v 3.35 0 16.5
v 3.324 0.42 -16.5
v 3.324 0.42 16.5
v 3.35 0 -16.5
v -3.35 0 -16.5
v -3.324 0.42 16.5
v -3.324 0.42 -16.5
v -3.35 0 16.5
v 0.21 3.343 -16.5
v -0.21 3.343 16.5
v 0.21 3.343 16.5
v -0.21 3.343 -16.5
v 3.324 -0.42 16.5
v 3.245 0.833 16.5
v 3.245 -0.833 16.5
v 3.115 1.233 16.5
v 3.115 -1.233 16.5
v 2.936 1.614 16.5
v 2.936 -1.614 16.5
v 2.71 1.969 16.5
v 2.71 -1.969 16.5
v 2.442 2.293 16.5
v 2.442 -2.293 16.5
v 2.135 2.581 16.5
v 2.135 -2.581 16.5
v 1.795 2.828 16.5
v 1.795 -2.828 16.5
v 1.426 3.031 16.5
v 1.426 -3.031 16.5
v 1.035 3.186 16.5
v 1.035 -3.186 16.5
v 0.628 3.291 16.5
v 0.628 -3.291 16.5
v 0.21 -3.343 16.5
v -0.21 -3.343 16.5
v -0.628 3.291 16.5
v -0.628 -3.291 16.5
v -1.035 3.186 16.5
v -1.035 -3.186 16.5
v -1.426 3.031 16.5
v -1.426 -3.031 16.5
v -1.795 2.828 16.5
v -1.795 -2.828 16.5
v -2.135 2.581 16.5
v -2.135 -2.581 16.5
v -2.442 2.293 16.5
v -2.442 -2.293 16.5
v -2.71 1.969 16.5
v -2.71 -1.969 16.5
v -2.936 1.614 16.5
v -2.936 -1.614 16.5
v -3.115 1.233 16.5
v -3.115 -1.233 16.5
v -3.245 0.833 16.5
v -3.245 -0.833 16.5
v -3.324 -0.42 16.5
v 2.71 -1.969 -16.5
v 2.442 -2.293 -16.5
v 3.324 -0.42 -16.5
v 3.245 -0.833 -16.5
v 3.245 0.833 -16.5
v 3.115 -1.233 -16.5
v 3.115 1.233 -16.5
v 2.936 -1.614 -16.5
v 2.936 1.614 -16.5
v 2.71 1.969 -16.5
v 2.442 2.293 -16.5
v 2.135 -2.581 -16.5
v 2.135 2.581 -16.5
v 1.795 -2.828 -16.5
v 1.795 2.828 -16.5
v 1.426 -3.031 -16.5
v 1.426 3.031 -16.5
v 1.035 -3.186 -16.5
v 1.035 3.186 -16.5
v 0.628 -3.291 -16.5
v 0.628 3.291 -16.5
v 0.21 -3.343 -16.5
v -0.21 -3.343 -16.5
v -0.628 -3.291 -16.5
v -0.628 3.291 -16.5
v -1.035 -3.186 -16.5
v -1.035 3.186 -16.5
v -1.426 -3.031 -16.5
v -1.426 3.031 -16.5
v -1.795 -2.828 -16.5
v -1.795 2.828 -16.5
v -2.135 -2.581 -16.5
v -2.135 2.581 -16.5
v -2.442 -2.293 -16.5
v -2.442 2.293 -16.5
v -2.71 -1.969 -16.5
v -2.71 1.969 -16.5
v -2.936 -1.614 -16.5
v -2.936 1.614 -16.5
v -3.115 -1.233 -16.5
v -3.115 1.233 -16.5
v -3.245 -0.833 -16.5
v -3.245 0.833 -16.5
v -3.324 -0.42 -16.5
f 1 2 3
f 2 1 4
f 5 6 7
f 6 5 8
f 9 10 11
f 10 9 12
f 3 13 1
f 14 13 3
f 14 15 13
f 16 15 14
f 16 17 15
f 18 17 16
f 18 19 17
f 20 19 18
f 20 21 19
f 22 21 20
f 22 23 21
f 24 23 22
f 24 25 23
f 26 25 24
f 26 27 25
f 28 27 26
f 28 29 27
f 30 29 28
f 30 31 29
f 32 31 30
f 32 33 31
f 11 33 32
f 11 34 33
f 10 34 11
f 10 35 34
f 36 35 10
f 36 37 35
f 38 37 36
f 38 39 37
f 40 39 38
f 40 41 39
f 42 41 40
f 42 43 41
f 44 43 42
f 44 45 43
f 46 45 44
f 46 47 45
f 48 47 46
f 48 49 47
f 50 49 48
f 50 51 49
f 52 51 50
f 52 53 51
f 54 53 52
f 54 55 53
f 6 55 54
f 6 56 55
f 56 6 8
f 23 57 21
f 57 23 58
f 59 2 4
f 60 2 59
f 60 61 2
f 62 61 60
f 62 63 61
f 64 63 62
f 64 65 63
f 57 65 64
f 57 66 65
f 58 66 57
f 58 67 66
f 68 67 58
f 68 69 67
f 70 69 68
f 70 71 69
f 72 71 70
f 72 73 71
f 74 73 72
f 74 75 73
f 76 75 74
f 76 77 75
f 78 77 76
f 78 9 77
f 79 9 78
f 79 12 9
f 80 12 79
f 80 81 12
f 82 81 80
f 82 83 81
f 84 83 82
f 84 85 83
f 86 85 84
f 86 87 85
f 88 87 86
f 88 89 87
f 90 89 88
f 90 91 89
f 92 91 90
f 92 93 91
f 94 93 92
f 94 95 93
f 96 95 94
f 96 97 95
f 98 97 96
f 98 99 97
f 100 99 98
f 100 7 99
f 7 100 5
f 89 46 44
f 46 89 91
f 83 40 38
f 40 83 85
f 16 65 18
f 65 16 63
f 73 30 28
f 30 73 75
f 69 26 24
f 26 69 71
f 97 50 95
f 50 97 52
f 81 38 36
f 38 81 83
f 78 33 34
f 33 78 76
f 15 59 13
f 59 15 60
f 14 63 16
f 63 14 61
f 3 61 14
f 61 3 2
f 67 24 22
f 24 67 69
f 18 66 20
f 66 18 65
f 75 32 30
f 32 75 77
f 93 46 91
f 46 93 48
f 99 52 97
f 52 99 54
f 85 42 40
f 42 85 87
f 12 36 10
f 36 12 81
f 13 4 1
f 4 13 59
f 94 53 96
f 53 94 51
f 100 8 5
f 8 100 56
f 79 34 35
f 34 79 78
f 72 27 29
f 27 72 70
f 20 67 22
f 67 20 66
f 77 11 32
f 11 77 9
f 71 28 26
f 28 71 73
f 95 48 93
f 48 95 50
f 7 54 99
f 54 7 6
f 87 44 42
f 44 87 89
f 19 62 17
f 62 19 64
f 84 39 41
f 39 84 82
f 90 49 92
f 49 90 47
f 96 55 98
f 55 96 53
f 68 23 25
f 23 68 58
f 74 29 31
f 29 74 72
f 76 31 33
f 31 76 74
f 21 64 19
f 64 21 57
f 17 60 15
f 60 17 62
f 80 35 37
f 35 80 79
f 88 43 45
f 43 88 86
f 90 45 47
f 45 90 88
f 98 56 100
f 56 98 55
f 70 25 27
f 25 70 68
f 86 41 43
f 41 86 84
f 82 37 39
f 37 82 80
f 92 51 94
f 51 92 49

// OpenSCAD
$fn = 50;


difference() {
	union() {
		translate(v = [0, 0, -16.5000000000]) {
			cylinder(h = 33, r = 3.3500000000);
		}
	}
	union() {
		translate(v = [0, 0, -100.0000000000]) {
			cylinder(h = 200, r = 0);
		}
	}
}
